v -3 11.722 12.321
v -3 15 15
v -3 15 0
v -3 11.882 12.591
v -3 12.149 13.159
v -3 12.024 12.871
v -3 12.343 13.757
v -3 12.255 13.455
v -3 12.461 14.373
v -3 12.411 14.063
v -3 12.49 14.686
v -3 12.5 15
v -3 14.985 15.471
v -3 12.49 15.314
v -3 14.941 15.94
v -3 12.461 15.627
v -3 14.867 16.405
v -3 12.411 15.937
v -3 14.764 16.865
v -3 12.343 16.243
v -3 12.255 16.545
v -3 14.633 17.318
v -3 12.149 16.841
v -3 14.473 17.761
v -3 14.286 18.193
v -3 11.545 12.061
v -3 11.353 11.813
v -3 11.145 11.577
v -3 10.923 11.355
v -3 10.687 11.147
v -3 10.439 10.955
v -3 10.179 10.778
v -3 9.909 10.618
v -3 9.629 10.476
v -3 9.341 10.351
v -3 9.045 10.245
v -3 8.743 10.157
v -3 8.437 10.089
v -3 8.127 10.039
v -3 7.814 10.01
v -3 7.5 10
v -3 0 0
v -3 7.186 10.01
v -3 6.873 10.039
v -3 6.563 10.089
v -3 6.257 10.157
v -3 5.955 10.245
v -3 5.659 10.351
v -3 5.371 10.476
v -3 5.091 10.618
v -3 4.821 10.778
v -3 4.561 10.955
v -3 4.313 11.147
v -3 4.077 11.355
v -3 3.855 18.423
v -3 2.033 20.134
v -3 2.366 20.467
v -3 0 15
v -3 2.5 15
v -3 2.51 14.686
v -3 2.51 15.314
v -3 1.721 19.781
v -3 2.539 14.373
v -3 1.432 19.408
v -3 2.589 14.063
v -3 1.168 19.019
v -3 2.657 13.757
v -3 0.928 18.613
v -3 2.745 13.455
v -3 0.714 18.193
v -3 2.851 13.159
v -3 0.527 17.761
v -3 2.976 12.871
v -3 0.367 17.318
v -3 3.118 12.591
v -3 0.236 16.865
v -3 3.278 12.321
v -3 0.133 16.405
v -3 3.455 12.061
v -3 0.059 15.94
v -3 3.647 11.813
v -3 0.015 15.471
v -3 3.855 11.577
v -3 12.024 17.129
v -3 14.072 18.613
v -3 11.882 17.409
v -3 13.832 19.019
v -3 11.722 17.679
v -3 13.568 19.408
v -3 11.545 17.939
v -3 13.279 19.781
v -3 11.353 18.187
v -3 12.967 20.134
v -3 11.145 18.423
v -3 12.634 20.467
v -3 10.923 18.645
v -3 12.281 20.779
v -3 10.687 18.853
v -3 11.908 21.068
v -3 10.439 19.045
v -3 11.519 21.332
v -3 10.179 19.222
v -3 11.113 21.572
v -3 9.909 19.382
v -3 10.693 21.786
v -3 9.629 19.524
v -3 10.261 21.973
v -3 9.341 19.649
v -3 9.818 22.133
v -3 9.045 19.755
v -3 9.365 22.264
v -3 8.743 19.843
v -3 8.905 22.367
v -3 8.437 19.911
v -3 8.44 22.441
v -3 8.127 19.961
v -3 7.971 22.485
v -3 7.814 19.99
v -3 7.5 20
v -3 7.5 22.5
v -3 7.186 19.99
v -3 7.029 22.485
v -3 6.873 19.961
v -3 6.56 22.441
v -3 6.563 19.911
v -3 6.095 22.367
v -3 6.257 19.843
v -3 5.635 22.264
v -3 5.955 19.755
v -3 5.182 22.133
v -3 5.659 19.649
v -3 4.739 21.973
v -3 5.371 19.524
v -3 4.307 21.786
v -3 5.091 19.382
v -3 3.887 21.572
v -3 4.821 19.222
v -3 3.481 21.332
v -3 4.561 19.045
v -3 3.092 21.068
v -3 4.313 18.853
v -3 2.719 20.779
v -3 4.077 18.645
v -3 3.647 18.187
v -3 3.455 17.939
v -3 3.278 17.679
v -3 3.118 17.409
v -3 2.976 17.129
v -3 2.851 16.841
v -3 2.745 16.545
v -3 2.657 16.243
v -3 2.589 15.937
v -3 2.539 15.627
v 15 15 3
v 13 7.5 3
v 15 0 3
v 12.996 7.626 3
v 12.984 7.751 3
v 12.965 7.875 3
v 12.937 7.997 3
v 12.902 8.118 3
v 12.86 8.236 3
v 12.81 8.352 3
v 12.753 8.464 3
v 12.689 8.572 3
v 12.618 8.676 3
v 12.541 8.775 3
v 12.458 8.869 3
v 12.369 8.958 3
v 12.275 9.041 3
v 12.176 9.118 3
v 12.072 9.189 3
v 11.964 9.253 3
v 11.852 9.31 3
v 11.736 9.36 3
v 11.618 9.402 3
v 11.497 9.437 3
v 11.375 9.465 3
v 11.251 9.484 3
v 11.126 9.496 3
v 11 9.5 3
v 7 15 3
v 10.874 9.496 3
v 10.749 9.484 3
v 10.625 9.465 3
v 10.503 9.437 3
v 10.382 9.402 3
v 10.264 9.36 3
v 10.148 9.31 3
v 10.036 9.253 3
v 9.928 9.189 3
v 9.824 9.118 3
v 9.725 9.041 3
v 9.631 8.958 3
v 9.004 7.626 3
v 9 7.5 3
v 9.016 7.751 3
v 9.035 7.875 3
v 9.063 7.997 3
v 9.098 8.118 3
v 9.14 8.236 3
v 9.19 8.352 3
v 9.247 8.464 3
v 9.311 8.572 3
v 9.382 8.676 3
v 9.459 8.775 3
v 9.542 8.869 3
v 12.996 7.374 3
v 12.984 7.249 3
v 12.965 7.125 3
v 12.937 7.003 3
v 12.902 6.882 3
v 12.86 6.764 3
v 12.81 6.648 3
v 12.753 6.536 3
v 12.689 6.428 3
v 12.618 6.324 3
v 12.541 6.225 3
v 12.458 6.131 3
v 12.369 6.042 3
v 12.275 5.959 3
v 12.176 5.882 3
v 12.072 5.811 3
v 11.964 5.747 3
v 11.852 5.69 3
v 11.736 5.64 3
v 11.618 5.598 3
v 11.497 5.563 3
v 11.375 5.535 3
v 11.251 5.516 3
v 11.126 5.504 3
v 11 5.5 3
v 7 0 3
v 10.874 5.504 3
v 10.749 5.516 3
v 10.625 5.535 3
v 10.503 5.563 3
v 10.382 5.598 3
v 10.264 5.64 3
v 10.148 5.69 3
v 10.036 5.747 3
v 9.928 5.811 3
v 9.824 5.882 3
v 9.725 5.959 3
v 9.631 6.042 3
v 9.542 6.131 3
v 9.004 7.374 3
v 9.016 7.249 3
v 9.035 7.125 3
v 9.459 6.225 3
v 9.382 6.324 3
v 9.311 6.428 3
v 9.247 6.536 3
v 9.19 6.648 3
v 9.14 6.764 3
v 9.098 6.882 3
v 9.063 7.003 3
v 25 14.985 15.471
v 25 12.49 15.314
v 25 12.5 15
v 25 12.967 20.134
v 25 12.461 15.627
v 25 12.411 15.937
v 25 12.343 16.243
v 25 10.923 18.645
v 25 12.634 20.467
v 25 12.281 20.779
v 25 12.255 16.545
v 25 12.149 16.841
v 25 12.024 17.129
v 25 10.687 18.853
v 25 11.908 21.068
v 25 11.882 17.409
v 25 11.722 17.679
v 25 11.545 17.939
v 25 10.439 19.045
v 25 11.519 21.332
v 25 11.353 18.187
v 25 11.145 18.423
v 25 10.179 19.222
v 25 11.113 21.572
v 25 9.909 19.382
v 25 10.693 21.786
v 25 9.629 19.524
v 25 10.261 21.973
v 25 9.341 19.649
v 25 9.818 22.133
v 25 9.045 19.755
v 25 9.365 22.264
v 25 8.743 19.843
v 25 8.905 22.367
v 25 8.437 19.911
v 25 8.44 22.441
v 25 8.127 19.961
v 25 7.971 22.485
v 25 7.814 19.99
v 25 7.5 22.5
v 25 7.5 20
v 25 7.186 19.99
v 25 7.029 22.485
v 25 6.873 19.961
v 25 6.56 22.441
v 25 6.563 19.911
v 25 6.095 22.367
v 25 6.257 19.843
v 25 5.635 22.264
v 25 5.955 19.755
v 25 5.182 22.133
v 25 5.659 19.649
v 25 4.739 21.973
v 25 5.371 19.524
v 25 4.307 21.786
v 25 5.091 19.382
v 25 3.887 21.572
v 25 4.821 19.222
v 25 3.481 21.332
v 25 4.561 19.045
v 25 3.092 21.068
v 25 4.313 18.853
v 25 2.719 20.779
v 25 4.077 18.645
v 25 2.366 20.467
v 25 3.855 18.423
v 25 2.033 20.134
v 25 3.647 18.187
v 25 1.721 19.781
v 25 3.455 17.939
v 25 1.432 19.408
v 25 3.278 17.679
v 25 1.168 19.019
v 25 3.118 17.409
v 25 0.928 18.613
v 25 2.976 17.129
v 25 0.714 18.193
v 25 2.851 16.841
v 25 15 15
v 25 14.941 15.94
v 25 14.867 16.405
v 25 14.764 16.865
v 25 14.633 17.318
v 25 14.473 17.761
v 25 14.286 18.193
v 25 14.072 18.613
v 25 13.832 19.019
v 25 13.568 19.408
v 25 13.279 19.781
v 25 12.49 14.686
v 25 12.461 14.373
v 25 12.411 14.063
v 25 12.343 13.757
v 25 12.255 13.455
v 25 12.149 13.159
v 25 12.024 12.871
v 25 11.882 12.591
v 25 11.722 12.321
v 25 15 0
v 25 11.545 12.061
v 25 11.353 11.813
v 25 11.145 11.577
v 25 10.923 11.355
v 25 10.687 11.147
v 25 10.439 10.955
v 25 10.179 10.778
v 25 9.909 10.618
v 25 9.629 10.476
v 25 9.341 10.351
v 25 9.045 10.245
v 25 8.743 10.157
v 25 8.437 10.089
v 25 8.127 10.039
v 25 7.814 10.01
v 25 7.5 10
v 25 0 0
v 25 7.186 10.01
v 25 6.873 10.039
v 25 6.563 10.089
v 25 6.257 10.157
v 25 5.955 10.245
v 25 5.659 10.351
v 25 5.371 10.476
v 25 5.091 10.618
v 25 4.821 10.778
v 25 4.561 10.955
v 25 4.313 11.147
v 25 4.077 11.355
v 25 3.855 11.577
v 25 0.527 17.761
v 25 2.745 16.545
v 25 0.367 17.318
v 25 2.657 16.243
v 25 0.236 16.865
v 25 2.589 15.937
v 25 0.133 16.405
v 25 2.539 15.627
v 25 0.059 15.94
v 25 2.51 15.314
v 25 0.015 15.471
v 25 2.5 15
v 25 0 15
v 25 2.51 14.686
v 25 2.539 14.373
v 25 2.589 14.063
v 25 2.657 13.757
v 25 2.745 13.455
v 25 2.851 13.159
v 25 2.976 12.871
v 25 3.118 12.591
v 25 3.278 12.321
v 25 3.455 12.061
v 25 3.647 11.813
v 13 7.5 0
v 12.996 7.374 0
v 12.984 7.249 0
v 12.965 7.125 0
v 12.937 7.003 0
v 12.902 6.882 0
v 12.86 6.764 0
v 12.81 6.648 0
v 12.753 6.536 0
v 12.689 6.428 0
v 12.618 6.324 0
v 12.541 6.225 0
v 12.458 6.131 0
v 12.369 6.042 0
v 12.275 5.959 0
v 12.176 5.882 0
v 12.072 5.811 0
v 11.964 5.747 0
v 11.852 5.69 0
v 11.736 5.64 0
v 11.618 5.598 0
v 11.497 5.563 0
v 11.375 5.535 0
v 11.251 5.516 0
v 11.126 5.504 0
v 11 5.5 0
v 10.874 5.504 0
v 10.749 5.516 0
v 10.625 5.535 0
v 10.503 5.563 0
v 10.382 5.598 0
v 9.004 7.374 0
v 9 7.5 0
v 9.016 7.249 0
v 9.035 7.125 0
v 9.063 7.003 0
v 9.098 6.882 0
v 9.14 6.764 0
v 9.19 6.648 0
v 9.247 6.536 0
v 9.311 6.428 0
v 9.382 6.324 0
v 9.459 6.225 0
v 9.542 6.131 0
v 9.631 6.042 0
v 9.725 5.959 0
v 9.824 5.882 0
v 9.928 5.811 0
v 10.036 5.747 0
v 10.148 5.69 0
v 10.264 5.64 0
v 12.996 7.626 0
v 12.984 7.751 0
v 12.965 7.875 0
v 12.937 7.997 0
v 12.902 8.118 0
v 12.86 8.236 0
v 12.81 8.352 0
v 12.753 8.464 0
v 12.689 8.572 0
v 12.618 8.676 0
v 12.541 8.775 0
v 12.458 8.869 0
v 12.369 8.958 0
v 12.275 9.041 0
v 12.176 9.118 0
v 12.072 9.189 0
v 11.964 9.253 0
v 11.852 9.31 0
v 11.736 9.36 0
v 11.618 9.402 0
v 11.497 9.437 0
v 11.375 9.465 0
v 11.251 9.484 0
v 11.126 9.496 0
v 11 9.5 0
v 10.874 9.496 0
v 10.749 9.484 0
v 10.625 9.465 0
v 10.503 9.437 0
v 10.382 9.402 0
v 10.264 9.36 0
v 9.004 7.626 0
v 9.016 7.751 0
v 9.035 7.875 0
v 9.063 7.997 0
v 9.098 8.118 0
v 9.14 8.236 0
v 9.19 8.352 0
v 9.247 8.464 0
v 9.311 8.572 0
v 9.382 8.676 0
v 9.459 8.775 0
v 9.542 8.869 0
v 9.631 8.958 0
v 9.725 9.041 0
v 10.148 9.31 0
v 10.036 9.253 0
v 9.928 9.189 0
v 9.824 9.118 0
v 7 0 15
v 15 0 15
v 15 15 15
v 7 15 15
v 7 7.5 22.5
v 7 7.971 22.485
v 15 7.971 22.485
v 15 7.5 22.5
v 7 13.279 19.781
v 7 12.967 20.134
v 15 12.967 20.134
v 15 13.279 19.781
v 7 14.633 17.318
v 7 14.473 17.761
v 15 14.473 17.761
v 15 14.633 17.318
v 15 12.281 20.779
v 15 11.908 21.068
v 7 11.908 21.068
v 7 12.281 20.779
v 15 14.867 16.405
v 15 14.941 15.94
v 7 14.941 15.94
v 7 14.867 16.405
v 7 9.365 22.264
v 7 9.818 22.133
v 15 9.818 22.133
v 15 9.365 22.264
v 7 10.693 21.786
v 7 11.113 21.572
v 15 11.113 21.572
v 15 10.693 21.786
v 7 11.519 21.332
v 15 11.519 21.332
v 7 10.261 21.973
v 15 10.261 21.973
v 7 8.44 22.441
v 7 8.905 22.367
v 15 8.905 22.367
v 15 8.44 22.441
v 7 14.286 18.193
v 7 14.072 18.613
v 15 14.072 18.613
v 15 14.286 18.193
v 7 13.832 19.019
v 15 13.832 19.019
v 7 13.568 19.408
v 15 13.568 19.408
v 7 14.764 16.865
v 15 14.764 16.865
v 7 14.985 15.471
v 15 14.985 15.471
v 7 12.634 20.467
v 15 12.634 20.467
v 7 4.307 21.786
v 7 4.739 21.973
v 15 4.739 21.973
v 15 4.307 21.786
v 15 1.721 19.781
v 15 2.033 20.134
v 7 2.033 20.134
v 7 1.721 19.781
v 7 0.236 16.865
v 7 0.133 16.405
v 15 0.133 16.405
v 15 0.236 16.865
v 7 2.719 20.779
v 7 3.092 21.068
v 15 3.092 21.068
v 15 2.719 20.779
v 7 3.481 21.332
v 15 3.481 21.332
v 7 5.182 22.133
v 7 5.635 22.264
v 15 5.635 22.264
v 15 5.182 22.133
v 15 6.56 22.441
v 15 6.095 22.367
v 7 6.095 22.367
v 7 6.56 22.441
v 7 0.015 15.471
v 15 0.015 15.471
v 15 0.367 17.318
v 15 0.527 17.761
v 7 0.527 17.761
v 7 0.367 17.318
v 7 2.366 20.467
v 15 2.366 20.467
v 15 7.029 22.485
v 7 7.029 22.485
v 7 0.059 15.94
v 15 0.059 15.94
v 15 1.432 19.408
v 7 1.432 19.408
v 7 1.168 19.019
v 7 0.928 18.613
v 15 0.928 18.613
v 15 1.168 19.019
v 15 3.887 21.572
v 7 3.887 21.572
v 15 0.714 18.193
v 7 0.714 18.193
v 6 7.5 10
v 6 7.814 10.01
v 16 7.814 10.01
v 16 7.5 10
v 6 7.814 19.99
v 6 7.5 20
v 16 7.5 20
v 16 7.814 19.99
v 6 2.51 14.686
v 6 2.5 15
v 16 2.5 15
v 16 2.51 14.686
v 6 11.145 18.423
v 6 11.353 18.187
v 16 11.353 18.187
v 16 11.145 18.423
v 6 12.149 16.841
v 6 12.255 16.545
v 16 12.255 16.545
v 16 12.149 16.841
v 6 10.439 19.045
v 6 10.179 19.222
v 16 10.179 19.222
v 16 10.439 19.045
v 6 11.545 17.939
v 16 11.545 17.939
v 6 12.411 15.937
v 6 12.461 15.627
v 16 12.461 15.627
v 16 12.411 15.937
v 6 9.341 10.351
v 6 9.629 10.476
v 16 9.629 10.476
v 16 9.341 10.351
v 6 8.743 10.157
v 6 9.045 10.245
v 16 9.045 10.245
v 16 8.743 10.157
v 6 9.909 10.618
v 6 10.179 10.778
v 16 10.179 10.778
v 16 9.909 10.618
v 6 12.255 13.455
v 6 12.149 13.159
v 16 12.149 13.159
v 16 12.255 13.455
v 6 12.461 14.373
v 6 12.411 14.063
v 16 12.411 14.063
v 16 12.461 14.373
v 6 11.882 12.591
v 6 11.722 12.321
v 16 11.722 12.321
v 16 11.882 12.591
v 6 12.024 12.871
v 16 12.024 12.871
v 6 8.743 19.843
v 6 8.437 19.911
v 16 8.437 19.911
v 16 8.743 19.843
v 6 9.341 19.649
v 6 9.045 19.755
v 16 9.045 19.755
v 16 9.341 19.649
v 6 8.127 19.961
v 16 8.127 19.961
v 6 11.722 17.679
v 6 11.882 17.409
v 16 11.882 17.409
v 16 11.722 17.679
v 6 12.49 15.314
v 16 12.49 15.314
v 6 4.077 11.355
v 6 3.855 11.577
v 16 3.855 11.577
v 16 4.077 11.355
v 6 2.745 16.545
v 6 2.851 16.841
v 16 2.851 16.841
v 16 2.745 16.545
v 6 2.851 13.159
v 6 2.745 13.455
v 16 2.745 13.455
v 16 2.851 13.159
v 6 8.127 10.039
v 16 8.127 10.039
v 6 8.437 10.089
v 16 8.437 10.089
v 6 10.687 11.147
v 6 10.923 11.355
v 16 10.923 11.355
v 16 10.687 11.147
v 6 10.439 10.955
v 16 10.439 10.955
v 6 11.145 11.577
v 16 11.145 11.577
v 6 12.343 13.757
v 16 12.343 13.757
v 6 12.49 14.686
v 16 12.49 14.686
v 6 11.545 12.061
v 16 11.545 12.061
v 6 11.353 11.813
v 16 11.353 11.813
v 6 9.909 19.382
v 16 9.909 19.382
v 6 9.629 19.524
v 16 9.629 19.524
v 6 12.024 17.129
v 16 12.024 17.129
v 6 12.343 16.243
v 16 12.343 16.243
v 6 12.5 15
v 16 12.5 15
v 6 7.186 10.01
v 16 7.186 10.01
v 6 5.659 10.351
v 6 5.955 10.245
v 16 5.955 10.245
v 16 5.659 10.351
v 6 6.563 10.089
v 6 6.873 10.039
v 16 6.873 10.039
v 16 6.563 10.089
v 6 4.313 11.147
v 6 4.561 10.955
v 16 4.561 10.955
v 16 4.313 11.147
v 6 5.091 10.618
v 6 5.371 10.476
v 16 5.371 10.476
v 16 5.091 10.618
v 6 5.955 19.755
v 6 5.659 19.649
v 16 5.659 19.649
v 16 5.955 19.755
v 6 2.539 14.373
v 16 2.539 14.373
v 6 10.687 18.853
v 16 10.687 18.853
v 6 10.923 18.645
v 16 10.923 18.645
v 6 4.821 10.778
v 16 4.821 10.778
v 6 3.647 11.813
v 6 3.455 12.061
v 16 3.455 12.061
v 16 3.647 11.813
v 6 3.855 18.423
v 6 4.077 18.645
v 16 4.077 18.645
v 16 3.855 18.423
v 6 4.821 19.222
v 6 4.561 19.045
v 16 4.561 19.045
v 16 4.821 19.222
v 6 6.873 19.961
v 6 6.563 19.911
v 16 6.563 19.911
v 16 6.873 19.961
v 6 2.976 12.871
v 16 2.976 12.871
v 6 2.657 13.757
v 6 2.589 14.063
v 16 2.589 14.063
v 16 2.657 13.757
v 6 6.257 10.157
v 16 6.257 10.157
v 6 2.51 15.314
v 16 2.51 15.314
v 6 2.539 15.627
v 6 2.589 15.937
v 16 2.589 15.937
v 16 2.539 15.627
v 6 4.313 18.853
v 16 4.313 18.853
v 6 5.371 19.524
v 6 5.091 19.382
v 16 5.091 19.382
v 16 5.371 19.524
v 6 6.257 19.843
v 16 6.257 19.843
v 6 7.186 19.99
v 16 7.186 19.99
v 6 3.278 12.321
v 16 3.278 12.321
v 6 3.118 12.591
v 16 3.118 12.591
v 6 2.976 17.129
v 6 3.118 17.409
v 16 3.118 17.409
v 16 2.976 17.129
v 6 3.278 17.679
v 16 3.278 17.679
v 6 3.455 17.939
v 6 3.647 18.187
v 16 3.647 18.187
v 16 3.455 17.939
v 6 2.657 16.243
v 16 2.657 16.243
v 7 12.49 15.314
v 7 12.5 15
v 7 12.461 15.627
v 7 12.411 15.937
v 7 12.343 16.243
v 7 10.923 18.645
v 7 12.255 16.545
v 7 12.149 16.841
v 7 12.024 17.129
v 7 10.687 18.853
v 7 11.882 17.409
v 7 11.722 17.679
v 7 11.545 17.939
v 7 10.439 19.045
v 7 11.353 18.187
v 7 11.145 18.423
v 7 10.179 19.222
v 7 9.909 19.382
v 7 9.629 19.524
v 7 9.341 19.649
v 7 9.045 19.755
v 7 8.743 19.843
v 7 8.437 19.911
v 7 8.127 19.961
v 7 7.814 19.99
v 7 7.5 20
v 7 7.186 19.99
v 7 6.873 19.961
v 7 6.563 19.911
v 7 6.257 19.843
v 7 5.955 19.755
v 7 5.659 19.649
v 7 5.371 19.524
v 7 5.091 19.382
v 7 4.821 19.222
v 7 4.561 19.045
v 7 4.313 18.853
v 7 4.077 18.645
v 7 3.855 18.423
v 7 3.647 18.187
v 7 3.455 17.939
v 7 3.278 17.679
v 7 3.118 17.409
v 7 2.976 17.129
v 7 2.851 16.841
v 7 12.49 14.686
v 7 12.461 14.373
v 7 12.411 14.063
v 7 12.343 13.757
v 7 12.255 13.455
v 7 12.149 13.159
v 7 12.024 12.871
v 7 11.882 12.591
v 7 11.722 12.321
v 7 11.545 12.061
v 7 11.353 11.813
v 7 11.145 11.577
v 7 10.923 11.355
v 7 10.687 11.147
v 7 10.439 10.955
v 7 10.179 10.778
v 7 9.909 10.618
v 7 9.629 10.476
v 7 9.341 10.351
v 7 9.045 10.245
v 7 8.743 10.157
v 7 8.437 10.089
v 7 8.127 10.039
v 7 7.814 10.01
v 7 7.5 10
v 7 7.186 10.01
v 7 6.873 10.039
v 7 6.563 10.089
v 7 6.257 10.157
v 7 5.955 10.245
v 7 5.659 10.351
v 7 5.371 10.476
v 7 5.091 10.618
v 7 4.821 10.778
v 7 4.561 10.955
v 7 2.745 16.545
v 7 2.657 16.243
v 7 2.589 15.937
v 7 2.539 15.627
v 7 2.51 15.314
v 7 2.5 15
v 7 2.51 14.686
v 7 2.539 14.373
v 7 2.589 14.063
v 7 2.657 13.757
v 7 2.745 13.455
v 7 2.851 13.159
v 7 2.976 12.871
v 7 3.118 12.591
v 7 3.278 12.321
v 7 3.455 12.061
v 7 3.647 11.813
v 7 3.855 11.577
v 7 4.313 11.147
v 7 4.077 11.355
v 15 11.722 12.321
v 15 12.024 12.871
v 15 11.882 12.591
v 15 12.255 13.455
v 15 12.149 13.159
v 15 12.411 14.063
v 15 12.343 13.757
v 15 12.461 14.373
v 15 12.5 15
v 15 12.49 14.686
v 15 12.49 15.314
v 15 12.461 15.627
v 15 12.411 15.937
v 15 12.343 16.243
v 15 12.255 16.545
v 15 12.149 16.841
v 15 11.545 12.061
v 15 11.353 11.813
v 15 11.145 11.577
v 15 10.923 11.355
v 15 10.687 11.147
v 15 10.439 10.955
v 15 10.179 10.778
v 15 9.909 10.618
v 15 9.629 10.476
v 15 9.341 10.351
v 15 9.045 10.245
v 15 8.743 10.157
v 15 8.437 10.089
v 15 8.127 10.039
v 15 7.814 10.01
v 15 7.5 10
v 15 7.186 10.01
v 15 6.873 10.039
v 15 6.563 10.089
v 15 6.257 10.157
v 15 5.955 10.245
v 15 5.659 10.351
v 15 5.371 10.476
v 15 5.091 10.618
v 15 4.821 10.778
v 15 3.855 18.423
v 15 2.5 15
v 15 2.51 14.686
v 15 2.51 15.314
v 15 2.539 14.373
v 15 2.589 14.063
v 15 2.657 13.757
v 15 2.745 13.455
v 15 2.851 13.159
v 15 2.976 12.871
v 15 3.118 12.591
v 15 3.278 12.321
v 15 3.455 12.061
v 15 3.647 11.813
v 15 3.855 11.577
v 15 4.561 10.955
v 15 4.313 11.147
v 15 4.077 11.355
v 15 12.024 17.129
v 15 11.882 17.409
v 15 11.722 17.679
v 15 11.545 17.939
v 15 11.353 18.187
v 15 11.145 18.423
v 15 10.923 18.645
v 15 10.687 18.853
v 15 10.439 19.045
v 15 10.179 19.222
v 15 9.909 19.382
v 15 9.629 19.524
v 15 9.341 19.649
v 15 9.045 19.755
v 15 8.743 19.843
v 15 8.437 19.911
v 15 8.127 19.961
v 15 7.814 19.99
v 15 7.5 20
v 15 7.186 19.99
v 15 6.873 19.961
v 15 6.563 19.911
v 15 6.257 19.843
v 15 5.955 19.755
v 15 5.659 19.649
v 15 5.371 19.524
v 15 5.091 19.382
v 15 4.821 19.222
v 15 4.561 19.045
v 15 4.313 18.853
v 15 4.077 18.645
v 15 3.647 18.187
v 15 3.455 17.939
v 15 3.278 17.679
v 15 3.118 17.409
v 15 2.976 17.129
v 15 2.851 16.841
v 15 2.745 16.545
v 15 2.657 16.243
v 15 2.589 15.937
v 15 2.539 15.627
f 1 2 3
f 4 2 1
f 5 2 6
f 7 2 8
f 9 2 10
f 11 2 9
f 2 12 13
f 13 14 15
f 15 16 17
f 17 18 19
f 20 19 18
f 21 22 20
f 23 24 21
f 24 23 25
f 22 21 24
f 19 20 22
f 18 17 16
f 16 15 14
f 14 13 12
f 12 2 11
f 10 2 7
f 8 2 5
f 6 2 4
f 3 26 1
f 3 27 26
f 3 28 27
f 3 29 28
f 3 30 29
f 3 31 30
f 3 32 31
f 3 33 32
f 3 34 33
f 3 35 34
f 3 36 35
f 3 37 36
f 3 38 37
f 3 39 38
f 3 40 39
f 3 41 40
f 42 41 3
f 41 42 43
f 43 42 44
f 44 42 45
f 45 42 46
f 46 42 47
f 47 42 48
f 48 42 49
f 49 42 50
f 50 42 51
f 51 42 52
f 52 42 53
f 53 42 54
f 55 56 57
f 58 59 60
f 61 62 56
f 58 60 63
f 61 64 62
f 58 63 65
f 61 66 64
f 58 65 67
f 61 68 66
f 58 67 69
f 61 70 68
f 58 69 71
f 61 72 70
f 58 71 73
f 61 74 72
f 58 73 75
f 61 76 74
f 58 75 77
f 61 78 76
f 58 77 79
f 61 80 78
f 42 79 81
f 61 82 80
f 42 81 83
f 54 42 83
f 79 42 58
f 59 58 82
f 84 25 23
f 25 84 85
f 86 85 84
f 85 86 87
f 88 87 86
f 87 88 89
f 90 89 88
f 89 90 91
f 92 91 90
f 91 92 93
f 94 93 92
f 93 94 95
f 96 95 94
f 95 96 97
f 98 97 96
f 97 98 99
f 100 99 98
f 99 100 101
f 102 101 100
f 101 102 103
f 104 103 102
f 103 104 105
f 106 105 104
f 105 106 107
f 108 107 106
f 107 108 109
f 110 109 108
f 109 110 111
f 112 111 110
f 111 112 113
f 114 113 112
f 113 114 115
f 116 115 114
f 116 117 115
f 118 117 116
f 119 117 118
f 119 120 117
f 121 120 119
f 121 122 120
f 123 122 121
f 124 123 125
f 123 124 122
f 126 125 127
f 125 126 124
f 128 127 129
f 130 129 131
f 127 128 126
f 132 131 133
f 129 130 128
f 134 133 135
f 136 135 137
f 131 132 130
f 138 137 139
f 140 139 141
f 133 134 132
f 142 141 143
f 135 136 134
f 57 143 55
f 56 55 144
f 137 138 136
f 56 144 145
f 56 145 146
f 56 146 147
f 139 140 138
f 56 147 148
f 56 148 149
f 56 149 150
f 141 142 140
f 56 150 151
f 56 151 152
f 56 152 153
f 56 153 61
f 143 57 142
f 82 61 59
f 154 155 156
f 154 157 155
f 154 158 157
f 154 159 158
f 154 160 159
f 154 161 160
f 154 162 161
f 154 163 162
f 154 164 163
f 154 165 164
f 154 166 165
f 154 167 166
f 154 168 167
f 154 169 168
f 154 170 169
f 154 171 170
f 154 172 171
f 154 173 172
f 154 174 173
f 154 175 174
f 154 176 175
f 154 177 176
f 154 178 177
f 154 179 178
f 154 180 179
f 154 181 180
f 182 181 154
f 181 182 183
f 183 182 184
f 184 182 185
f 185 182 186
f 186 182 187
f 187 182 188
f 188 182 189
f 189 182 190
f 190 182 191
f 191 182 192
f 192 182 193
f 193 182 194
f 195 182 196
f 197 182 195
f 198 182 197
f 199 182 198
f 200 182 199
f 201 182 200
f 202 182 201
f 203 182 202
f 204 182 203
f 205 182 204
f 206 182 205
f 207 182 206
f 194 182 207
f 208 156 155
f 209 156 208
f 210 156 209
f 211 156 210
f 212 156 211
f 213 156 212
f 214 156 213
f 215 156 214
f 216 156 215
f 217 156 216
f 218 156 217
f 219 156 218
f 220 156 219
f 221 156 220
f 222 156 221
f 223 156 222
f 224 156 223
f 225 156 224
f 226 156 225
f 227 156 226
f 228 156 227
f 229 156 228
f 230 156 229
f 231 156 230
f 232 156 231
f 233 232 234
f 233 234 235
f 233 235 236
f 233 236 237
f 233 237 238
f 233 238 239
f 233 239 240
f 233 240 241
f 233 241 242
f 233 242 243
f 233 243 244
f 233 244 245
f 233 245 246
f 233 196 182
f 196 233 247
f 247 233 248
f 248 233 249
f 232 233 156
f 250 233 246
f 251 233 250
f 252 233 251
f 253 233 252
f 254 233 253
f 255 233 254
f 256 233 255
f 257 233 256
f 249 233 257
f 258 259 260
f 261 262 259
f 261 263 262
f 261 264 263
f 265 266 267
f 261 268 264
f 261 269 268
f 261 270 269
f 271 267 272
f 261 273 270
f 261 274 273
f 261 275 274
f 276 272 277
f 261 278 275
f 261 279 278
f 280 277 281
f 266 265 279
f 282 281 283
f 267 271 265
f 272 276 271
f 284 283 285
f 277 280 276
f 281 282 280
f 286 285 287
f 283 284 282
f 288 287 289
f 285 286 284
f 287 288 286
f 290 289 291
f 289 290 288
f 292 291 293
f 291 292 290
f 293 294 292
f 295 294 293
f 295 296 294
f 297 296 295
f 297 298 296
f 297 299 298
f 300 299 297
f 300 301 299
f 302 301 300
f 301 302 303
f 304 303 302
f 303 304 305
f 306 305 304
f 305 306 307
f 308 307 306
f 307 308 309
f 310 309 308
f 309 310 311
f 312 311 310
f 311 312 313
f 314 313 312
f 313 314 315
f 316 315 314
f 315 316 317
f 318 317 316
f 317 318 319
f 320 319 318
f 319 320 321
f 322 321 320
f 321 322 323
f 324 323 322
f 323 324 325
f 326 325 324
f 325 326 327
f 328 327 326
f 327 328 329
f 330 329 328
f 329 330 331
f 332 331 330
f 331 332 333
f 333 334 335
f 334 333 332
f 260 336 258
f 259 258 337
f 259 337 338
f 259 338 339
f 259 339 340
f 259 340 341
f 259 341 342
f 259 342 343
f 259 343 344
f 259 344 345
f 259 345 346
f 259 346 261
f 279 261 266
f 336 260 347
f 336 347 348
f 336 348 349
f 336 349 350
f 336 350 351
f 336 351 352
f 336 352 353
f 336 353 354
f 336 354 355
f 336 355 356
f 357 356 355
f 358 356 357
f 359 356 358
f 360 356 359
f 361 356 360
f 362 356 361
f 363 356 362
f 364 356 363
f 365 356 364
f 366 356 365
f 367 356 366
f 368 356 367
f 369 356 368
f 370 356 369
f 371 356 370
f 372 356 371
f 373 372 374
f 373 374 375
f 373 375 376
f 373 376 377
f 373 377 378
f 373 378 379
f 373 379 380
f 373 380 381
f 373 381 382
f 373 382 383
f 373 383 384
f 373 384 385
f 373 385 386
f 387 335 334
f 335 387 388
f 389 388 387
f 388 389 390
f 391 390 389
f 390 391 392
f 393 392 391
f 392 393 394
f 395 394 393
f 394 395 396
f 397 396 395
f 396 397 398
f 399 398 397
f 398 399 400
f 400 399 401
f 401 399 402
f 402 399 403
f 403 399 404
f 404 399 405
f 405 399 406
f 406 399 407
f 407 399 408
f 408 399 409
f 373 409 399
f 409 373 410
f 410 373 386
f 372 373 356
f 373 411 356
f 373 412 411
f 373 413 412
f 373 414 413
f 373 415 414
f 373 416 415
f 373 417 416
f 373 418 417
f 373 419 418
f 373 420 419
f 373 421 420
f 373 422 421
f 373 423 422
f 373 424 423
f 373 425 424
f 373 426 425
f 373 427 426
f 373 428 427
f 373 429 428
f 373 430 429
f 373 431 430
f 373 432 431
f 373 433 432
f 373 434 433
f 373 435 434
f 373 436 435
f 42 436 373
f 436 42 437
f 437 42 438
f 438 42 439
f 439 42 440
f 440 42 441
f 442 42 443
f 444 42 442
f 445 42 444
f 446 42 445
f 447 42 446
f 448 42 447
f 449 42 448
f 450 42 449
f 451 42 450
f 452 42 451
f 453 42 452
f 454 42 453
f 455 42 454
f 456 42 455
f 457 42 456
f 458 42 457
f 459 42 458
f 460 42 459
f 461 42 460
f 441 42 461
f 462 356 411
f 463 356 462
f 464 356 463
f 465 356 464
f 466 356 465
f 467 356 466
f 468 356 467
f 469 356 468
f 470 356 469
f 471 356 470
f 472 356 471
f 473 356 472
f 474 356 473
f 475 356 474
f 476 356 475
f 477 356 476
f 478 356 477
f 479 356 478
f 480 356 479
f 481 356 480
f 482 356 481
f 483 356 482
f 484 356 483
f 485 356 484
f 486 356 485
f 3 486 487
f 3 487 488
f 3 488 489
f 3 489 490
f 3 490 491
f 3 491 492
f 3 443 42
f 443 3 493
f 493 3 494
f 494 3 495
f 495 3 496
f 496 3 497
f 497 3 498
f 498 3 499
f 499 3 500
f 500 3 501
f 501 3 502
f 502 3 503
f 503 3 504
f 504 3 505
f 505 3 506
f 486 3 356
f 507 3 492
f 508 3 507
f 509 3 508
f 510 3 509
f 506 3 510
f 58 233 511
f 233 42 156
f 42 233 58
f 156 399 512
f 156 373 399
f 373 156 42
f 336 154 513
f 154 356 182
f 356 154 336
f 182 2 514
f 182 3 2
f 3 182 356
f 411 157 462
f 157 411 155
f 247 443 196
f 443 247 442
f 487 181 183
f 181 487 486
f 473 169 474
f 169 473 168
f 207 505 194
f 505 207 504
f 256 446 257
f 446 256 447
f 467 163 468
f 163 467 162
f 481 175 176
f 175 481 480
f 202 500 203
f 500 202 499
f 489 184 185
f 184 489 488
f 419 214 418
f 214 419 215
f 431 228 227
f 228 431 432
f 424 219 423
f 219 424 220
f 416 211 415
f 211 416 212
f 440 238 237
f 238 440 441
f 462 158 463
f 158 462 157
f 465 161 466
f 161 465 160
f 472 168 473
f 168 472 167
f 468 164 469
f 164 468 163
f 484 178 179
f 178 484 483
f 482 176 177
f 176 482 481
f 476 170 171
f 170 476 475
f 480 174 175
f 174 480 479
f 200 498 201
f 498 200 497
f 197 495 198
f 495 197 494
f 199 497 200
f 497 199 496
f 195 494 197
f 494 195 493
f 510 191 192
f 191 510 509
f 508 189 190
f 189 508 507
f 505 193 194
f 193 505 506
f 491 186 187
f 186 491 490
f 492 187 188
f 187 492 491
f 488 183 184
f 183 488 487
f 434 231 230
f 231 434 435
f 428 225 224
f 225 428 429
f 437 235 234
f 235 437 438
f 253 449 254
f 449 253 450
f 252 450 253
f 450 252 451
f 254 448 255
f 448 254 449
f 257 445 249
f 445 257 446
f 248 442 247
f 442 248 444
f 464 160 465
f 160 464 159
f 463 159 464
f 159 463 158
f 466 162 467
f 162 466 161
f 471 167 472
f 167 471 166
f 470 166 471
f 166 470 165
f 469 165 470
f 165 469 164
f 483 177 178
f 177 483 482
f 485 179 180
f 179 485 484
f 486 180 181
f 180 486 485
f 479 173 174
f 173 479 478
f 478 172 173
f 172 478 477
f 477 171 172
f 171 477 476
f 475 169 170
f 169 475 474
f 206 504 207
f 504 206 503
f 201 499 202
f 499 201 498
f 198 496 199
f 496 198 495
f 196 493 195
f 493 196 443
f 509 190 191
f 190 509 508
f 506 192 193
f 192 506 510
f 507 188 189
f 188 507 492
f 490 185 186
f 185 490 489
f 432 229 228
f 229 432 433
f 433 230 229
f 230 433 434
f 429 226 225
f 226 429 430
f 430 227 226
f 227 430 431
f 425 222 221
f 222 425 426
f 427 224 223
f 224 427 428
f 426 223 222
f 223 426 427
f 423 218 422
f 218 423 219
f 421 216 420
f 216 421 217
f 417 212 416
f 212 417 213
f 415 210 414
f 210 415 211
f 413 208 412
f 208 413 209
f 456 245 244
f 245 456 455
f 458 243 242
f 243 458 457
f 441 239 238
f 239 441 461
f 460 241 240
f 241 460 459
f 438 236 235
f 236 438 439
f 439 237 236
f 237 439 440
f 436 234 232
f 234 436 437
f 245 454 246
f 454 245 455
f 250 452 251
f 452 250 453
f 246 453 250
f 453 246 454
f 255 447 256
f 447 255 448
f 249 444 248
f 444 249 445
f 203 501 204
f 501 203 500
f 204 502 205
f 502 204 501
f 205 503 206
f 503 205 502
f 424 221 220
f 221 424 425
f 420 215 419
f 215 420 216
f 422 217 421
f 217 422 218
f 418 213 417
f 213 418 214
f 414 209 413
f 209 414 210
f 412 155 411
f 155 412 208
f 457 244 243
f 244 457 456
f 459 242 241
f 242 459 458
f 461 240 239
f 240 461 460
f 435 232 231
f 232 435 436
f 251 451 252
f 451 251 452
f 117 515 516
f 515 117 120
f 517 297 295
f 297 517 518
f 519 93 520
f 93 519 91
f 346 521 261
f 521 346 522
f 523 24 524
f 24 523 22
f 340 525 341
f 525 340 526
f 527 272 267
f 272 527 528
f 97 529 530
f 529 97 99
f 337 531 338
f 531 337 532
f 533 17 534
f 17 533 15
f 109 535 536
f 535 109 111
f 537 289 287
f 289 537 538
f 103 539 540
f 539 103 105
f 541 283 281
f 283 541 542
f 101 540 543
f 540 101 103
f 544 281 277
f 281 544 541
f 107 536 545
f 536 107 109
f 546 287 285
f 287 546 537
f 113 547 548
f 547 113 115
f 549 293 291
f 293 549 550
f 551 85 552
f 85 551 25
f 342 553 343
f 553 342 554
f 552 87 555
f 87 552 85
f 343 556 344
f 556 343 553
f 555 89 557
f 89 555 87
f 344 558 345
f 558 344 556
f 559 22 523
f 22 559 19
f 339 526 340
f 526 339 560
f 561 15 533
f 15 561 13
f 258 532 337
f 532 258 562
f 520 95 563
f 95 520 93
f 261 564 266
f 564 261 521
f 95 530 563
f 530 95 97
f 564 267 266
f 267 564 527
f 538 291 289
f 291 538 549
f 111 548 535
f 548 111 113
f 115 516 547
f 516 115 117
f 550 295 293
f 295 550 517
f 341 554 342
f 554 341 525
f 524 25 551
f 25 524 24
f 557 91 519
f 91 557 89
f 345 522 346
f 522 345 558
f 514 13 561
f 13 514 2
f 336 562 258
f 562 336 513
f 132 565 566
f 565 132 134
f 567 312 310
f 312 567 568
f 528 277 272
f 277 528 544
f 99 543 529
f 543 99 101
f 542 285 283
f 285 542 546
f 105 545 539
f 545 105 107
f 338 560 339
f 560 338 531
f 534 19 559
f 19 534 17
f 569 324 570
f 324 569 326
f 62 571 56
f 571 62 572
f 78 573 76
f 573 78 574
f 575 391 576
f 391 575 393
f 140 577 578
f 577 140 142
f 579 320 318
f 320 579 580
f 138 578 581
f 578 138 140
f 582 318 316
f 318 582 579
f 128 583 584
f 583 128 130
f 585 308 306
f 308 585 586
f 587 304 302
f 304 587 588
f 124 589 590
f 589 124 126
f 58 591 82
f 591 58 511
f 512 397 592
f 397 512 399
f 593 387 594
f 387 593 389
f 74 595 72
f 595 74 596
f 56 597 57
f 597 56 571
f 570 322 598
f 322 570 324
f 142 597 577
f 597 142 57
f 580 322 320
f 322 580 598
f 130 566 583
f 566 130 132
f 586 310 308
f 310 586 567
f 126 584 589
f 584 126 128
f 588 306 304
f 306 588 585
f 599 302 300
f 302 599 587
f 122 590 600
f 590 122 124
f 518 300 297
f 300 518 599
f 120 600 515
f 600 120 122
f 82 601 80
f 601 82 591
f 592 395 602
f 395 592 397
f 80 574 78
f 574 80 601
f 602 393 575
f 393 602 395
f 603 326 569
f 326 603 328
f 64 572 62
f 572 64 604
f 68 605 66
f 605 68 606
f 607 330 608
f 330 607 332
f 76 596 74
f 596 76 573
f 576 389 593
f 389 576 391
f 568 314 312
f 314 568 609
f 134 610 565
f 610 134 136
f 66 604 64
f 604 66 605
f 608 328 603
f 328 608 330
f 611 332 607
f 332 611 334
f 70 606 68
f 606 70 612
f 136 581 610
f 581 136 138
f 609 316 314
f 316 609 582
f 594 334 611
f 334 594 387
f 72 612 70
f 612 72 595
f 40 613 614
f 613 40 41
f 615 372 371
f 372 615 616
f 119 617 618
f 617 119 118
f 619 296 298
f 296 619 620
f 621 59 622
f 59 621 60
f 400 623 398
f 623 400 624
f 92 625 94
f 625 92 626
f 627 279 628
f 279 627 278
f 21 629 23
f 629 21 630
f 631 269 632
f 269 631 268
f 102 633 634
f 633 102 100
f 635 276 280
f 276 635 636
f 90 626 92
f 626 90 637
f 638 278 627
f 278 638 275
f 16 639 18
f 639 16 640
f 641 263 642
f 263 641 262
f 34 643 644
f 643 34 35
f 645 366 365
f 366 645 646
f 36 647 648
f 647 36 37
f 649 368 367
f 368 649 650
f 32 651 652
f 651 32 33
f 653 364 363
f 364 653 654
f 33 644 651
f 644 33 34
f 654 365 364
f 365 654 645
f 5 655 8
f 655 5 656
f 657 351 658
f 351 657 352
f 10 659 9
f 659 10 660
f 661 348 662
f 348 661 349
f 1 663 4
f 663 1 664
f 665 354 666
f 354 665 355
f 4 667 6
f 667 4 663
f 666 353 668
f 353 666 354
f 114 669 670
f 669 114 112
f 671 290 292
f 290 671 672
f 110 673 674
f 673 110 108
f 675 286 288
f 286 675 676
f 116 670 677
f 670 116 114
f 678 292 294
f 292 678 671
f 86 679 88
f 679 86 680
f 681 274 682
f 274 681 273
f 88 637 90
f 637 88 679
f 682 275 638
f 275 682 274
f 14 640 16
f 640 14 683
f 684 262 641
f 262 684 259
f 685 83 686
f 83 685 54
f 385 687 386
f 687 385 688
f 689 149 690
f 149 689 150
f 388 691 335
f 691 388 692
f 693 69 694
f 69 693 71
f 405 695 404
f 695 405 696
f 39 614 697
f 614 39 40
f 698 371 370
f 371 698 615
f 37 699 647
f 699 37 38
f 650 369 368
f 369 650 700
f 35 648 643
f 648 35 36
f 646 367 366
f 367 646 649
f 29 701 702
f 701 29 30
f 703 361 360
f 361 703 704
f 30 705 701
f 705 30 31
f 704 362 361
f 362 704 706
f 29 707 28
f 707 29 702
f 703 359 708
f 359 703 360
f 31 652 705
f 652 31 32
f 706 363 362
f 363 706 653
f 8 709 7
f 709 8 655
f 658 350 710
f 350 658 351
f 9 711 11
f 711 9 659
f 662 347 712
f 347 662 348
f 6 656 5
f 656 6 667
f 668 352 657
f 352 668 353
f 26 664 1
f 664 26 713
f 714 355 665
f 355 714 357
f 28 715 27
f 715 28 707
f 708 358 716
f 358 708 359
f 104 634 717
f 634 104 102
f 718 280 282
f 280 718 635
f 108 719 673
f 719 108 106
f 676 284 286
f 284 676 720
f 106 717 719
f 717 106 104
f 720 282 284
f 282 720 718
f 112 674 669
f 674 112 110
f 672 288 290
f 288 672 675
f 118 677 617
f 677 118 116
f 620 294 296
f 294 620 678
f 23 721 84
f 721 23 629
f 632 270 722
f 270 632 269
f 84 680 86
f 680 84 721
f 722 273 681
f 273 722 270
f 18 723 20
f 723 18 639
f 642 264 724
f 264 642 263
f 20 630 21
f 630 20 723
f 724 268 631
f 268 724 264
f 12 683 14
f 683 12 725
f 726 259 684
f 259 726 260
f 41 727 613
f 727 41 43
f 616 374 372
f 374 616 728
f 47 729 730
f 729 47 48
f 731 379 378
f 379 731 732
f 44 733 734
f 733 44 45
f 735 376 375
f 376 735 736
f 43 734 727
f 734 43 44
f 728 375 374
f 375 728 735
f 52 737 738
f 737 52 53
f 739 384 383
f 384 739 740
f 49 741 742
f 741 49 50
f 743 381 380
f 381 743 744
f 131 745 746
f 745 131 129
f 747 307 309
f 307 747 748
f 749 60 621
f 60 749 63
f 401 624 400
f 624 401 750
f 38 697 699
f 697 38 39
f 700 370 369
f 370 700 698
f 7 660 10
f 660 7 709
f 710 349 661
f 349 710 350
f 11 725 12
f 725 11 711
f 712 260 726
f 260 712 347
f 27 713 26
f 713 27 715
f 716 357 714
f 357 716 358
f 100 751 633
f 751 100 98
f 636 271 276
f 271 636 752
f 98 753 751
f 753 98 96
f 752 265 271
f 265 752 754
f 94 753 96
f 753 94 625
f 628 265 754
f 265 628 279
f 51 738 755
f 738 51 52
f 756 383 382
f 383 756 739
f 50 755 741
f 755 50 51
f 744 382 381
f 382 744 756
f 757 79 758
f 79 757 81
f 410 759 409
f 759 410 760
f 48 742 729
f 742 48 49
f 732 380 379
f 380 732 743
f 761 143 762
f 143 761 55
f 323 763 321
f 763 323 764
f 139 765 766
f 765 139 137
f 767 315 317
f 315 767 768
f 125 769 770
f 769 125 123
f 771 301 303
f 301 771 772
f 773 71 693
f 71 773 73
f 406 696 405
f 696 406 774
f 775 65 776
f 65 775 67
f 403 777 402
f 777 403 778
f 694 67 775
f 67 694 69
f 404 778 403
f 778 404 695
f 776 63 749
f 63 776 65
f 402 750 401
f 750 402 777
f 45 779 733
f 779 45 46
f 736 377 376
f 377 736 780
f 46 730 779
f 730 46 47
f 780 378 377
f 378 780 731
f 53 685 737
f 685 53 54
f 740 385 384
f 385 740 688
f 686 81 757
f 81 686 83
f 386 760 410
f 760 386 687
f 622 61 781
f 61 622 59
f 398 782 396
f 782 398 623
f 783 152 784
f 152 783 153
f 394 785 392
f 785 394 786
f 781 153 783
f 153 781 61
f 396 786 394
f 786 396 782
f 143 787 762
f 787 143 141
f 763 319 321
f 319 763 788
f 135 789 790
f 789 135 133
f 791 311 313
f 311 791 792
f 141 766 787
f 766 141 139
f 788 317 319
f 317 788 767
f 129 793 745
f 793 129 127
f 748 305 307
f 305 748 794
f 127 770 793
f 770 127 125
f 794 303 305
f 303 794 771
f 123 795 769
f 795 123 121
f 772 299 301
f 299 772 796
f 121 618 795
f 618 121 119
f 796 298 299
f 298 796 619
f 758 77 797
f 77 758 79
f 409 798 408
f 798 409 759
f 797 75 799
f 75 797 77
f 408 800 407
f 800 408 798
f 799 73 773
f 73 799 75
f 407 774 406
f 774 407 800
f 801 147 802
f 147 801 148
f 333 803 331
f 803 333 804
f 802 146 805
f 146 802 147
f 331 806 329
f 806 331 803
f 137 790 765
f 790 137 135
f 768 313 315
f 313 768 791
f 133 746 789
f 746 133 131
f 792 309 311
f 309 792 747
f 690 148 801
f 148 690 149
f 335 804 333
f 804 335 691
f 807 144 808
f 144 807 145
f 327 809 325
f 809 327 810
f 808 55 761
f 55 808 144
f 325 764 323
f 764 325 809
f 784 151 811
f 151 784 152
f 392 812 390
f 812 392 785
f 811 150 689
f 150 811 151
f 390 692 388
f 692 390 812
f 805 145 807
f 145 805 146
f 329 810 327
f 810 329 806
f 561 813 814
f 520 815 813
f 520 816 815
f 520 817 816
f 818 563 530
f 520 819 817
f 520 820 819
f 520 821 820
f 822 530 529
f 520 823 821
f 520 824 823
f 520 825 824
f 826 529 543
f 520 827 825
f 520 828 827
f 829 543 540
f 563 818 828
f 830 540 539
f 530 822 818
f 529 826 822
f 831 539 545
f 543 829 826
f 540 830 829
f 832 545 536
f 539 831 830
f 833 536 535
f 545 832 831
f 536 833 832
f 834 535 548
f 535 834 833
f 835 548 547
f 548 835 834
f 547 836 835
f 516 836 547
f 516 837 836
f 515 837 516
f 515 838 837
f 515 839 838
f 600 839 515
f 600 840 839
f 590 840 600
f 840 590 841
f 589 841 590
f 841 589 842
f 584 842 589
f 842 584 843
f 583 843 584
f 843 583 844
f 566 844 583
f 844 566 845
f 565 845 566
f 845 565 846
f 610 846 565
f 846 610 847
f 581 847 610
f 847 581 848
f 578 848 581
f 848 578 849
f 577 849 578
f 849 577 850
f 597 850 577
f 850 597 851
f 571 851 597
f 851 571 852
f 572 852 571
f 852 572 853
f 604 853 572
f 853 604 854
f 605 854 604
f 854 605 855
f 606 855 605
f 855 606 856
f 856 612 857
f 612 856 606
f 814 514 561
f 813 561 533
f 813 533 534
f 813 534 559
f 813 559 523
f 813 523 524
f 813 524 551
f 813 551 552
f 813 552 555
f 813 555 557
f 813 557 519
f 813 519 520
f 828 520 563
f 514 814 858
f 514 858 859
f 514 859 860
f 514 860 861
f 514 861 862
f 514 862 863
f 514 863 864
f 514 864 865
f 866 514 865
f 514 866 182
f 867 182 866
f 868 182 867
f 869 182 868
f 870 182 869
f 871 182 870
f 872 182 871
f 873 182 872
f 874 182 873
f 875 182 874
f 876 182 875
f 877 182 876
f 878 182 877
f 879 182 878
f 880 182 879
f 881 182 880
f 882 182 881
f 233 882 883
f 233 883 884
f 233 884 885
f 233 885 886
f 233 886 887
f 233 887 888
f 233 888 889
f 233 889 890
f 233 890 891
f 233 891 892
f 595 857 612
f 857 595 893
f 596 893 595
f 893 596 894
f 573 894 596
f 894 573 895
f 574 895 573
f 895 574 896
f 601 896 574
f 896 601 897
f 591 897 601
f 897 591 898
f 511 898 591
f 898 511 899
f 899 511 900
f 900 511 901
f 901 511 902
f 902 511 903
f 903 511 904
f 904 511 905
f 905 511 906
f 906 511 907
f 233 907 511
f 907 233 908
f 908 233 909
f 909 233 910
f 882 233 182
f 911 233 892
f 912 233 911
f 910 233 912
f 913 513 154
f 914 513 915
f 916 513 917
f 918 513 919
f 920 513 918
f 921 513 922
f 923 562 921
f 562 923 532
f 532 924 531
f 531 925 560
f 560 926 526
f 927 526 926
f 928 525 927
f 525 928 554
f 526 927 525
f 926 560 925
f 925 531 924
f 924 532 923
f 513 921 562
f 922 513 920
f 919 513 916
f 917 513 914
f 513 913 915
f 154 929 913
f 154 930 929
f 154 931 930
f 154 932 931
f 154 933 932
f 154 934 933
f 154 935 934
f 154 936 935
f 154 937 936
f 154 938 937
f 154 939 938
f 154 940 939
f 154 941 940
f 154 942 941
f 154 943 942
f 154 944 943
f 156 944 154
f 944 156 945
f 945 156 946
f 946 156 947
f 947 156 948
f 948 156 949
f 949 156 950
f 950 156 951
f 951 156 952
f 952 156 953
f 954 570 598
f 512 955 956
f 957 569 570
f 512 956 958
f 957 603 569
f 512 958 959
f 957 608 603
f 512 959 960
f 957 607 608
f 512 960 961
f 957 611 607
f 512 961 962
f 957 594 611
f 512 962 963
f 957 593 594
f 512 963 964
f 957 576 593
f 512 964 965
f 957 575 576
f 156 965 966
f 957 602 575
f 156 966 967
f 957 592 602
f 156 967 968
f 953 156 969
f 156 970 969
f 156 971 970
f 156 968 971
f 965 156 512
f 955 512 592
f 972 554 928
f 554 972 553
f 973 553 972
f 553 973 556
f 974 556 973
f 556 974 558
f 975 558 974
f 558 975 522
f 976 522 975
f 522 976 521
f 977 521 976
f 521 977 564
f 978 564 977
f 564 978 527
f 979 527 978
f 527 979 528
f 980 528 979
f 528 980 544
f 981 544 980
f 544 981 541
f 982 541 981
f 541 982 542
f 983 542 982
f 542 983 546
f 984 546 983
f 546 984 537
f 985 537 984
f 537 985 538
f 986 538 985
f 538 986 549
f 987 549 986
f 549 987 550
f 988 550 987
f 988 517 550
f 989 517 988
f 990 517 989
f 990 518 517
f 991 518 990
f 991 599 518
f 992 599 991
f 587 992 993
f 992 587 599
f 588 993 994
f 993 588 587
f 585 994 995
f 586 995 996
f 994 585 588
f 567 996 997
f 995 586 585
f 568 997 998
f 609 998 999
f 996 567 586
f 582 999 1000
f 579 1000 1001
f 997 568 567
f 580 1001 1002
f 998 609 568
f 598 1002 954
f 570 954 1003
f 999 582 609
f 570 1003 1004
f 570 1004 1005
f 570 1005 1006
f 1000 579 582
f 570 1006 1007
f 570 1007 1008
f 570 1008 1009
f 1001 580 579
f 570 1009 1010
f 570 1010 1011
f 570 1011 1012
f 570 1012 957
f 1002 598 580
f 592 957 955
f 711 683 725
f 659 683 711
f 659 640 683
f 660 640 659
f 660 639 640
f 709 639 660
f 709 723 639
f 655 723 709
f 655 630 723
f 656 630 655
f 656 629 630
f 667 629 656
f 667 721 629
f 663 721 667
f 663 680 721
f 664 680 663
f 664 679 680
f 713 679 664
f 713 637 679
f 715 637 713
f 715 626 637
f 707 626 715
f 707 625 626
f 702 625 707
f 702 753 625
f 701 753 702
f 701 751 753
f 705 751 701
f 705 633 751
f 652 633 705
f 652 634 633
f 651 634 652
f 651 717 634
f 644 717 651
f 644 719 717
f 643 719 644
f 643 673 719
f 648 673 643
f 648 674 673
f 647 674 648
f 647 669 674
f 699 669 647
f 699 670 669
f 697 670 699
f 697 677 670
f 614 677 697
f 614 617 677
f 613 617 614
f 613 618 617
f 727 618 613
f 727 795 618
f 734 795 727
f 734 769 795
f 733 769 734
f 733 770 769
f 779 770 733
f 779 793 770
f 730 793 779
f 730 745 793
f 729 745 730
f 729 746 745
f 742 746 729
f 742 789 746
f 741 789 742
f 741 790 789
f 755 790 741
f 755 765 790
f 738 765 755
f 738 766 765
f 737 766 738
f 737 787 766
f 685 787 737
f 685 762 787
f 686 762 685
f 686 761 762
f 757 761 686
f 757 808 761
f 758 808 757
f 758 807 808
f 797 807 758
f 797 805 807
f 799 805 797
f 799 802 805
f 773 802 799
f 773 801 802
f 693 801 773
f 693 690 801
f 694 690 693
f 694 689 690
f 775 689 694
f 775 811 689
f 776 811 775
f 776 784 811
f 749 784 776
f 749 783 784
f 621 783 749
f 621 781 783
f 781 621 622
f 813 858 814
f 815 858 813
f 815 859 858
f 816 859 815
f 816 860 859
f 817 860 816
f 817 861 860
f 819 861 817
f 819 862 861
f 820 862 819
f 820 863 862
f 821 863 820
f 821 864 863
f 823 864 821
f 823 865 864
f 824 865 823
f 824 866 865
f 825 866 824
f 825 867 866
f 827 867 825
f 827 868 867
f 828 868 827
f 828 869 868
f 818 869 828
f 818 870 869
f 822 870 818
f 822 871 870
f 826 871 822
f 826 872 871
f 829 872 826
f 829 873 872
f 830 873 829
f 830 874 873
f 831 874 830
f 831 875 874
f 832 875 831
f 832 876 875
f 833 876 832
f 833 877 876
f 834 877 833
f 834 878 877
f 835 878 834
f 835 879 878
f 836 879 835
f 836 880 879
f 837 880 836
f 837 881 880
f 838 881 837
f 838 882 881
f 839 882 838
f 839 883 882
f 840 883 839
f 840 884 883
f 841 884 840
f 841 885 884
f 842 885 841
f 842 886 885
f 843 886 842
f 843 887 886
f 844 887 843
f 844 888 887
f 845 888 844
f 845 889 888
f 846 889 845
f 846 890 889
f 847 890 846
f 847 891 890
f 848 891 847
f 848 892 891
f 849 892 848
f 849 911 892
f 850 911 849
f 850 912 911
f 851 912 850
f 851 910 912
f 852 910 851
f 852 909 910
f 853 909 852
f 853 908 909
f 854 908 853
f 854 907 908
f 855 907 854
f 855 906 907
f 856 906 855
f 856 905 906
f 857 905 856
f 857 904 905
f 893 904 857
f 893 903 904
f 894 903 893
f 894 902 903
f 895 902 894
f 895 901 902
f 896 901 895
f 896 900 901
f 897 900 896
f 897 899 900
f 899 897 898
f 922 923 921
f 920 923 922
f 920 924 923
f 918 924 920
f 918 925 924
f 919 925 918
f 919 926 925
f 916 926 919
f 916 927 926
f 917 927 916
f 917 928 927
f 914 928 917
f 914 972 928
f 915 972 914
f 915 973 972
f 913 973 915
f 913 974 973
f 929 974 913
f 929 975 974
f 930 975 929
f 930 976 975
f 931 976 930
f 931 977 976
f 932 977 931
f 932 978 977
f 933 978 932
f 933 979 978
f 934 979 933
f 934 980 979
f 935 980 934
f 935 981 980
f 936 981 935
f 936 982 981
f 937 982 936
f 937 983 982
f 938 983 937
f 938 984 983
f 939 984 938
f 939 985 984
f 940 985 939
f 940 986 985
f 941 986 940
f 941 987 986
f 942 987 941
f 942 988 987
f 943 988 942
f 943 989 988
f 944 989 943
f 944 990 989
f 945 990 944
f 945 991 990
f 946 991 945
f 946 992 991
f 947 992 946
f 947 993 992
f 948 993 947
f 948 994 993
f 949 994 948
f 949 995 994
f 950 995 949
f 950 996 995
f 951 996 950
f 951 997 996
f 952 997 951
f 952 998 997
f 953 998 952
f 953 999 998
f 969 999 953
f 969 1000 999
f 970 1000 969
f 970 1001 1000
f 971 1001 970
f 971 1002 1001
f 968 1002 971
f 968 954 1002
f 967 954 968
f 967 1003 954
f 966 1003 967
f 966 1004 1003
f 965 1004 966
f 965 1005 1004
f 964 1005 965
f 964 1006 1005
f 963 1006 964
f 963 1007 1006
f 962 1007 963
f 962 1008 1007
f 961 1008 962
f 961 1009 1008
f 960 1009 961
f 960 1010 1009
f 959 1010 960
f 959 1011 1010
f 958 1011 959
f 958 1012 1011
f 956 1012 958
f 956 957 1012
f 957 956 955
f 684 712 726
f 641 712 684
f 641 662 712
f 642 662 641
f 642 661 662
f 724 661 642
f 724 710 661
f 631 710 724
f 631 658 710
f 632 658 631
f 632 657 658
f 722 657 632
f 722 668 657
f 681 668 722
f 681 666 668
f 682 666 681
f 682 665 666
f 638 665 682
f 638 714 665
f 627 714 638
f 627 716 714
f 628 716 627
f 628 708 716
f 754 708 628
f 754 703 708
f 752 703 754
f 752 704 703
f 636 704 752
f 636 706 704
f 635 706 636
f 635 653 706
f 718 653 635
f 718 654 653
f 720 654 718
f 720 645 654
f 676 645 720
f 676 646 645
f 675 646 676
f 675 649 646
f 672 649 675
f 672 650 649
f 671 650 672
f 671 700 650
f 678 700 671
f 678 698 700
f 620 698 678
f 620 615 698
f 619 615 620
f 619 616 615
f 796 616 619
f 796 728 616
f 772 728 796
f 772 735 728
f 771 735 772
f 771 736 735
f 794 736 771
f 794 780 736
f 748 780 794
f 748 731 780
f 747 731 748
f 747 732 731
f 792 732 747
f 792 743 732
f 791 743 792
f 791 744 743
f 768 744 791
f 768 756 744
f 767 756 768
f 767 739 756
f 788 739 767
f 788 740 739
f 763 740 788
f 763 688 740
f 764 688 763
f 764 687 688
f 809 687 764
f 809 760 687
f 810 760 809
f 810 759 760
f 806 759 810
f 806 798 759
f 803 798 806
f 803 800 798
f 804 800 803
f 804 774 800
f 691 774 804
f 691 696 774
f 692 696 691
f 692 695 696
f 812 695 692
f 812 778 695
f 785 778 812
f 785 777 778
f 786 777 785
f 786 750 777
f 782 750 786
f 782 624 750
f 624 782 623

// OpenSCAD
res=100;

d=9.5;

difference(){
    translate([-3,0,0])cube([10+12+6,15,3]);
    #translate([22/2,15/2,0])cylinder(5,2,2,$fn=res);
}

difference(){
    translate([0,0,0]){
        translate([-3,0,0])cube([6+3+2,15,15]);
        translate([6+10-2,0,0])cube([6+3+2,15,15]);
        translate([-3,15/2,15])rotate([0,90,0])cylinder(22+6,15/2,15/2,$fn=res);
    };
    #translate([-3,15/2,15])rotate([0,90,0])cylinder(22+6,10/2,10/2,$fn=res);
    #translate([6+1,0,3])cube([10-2,15,30]);
}

translate([5+1,15/2,15])rotate([0,90,0])cylinder(1,10/2,10/2,$fn=res);
translate([6+10-1,15/2,15])rotate([0,90,0])cylinder(1,10/2,10/2,$fn=res);
